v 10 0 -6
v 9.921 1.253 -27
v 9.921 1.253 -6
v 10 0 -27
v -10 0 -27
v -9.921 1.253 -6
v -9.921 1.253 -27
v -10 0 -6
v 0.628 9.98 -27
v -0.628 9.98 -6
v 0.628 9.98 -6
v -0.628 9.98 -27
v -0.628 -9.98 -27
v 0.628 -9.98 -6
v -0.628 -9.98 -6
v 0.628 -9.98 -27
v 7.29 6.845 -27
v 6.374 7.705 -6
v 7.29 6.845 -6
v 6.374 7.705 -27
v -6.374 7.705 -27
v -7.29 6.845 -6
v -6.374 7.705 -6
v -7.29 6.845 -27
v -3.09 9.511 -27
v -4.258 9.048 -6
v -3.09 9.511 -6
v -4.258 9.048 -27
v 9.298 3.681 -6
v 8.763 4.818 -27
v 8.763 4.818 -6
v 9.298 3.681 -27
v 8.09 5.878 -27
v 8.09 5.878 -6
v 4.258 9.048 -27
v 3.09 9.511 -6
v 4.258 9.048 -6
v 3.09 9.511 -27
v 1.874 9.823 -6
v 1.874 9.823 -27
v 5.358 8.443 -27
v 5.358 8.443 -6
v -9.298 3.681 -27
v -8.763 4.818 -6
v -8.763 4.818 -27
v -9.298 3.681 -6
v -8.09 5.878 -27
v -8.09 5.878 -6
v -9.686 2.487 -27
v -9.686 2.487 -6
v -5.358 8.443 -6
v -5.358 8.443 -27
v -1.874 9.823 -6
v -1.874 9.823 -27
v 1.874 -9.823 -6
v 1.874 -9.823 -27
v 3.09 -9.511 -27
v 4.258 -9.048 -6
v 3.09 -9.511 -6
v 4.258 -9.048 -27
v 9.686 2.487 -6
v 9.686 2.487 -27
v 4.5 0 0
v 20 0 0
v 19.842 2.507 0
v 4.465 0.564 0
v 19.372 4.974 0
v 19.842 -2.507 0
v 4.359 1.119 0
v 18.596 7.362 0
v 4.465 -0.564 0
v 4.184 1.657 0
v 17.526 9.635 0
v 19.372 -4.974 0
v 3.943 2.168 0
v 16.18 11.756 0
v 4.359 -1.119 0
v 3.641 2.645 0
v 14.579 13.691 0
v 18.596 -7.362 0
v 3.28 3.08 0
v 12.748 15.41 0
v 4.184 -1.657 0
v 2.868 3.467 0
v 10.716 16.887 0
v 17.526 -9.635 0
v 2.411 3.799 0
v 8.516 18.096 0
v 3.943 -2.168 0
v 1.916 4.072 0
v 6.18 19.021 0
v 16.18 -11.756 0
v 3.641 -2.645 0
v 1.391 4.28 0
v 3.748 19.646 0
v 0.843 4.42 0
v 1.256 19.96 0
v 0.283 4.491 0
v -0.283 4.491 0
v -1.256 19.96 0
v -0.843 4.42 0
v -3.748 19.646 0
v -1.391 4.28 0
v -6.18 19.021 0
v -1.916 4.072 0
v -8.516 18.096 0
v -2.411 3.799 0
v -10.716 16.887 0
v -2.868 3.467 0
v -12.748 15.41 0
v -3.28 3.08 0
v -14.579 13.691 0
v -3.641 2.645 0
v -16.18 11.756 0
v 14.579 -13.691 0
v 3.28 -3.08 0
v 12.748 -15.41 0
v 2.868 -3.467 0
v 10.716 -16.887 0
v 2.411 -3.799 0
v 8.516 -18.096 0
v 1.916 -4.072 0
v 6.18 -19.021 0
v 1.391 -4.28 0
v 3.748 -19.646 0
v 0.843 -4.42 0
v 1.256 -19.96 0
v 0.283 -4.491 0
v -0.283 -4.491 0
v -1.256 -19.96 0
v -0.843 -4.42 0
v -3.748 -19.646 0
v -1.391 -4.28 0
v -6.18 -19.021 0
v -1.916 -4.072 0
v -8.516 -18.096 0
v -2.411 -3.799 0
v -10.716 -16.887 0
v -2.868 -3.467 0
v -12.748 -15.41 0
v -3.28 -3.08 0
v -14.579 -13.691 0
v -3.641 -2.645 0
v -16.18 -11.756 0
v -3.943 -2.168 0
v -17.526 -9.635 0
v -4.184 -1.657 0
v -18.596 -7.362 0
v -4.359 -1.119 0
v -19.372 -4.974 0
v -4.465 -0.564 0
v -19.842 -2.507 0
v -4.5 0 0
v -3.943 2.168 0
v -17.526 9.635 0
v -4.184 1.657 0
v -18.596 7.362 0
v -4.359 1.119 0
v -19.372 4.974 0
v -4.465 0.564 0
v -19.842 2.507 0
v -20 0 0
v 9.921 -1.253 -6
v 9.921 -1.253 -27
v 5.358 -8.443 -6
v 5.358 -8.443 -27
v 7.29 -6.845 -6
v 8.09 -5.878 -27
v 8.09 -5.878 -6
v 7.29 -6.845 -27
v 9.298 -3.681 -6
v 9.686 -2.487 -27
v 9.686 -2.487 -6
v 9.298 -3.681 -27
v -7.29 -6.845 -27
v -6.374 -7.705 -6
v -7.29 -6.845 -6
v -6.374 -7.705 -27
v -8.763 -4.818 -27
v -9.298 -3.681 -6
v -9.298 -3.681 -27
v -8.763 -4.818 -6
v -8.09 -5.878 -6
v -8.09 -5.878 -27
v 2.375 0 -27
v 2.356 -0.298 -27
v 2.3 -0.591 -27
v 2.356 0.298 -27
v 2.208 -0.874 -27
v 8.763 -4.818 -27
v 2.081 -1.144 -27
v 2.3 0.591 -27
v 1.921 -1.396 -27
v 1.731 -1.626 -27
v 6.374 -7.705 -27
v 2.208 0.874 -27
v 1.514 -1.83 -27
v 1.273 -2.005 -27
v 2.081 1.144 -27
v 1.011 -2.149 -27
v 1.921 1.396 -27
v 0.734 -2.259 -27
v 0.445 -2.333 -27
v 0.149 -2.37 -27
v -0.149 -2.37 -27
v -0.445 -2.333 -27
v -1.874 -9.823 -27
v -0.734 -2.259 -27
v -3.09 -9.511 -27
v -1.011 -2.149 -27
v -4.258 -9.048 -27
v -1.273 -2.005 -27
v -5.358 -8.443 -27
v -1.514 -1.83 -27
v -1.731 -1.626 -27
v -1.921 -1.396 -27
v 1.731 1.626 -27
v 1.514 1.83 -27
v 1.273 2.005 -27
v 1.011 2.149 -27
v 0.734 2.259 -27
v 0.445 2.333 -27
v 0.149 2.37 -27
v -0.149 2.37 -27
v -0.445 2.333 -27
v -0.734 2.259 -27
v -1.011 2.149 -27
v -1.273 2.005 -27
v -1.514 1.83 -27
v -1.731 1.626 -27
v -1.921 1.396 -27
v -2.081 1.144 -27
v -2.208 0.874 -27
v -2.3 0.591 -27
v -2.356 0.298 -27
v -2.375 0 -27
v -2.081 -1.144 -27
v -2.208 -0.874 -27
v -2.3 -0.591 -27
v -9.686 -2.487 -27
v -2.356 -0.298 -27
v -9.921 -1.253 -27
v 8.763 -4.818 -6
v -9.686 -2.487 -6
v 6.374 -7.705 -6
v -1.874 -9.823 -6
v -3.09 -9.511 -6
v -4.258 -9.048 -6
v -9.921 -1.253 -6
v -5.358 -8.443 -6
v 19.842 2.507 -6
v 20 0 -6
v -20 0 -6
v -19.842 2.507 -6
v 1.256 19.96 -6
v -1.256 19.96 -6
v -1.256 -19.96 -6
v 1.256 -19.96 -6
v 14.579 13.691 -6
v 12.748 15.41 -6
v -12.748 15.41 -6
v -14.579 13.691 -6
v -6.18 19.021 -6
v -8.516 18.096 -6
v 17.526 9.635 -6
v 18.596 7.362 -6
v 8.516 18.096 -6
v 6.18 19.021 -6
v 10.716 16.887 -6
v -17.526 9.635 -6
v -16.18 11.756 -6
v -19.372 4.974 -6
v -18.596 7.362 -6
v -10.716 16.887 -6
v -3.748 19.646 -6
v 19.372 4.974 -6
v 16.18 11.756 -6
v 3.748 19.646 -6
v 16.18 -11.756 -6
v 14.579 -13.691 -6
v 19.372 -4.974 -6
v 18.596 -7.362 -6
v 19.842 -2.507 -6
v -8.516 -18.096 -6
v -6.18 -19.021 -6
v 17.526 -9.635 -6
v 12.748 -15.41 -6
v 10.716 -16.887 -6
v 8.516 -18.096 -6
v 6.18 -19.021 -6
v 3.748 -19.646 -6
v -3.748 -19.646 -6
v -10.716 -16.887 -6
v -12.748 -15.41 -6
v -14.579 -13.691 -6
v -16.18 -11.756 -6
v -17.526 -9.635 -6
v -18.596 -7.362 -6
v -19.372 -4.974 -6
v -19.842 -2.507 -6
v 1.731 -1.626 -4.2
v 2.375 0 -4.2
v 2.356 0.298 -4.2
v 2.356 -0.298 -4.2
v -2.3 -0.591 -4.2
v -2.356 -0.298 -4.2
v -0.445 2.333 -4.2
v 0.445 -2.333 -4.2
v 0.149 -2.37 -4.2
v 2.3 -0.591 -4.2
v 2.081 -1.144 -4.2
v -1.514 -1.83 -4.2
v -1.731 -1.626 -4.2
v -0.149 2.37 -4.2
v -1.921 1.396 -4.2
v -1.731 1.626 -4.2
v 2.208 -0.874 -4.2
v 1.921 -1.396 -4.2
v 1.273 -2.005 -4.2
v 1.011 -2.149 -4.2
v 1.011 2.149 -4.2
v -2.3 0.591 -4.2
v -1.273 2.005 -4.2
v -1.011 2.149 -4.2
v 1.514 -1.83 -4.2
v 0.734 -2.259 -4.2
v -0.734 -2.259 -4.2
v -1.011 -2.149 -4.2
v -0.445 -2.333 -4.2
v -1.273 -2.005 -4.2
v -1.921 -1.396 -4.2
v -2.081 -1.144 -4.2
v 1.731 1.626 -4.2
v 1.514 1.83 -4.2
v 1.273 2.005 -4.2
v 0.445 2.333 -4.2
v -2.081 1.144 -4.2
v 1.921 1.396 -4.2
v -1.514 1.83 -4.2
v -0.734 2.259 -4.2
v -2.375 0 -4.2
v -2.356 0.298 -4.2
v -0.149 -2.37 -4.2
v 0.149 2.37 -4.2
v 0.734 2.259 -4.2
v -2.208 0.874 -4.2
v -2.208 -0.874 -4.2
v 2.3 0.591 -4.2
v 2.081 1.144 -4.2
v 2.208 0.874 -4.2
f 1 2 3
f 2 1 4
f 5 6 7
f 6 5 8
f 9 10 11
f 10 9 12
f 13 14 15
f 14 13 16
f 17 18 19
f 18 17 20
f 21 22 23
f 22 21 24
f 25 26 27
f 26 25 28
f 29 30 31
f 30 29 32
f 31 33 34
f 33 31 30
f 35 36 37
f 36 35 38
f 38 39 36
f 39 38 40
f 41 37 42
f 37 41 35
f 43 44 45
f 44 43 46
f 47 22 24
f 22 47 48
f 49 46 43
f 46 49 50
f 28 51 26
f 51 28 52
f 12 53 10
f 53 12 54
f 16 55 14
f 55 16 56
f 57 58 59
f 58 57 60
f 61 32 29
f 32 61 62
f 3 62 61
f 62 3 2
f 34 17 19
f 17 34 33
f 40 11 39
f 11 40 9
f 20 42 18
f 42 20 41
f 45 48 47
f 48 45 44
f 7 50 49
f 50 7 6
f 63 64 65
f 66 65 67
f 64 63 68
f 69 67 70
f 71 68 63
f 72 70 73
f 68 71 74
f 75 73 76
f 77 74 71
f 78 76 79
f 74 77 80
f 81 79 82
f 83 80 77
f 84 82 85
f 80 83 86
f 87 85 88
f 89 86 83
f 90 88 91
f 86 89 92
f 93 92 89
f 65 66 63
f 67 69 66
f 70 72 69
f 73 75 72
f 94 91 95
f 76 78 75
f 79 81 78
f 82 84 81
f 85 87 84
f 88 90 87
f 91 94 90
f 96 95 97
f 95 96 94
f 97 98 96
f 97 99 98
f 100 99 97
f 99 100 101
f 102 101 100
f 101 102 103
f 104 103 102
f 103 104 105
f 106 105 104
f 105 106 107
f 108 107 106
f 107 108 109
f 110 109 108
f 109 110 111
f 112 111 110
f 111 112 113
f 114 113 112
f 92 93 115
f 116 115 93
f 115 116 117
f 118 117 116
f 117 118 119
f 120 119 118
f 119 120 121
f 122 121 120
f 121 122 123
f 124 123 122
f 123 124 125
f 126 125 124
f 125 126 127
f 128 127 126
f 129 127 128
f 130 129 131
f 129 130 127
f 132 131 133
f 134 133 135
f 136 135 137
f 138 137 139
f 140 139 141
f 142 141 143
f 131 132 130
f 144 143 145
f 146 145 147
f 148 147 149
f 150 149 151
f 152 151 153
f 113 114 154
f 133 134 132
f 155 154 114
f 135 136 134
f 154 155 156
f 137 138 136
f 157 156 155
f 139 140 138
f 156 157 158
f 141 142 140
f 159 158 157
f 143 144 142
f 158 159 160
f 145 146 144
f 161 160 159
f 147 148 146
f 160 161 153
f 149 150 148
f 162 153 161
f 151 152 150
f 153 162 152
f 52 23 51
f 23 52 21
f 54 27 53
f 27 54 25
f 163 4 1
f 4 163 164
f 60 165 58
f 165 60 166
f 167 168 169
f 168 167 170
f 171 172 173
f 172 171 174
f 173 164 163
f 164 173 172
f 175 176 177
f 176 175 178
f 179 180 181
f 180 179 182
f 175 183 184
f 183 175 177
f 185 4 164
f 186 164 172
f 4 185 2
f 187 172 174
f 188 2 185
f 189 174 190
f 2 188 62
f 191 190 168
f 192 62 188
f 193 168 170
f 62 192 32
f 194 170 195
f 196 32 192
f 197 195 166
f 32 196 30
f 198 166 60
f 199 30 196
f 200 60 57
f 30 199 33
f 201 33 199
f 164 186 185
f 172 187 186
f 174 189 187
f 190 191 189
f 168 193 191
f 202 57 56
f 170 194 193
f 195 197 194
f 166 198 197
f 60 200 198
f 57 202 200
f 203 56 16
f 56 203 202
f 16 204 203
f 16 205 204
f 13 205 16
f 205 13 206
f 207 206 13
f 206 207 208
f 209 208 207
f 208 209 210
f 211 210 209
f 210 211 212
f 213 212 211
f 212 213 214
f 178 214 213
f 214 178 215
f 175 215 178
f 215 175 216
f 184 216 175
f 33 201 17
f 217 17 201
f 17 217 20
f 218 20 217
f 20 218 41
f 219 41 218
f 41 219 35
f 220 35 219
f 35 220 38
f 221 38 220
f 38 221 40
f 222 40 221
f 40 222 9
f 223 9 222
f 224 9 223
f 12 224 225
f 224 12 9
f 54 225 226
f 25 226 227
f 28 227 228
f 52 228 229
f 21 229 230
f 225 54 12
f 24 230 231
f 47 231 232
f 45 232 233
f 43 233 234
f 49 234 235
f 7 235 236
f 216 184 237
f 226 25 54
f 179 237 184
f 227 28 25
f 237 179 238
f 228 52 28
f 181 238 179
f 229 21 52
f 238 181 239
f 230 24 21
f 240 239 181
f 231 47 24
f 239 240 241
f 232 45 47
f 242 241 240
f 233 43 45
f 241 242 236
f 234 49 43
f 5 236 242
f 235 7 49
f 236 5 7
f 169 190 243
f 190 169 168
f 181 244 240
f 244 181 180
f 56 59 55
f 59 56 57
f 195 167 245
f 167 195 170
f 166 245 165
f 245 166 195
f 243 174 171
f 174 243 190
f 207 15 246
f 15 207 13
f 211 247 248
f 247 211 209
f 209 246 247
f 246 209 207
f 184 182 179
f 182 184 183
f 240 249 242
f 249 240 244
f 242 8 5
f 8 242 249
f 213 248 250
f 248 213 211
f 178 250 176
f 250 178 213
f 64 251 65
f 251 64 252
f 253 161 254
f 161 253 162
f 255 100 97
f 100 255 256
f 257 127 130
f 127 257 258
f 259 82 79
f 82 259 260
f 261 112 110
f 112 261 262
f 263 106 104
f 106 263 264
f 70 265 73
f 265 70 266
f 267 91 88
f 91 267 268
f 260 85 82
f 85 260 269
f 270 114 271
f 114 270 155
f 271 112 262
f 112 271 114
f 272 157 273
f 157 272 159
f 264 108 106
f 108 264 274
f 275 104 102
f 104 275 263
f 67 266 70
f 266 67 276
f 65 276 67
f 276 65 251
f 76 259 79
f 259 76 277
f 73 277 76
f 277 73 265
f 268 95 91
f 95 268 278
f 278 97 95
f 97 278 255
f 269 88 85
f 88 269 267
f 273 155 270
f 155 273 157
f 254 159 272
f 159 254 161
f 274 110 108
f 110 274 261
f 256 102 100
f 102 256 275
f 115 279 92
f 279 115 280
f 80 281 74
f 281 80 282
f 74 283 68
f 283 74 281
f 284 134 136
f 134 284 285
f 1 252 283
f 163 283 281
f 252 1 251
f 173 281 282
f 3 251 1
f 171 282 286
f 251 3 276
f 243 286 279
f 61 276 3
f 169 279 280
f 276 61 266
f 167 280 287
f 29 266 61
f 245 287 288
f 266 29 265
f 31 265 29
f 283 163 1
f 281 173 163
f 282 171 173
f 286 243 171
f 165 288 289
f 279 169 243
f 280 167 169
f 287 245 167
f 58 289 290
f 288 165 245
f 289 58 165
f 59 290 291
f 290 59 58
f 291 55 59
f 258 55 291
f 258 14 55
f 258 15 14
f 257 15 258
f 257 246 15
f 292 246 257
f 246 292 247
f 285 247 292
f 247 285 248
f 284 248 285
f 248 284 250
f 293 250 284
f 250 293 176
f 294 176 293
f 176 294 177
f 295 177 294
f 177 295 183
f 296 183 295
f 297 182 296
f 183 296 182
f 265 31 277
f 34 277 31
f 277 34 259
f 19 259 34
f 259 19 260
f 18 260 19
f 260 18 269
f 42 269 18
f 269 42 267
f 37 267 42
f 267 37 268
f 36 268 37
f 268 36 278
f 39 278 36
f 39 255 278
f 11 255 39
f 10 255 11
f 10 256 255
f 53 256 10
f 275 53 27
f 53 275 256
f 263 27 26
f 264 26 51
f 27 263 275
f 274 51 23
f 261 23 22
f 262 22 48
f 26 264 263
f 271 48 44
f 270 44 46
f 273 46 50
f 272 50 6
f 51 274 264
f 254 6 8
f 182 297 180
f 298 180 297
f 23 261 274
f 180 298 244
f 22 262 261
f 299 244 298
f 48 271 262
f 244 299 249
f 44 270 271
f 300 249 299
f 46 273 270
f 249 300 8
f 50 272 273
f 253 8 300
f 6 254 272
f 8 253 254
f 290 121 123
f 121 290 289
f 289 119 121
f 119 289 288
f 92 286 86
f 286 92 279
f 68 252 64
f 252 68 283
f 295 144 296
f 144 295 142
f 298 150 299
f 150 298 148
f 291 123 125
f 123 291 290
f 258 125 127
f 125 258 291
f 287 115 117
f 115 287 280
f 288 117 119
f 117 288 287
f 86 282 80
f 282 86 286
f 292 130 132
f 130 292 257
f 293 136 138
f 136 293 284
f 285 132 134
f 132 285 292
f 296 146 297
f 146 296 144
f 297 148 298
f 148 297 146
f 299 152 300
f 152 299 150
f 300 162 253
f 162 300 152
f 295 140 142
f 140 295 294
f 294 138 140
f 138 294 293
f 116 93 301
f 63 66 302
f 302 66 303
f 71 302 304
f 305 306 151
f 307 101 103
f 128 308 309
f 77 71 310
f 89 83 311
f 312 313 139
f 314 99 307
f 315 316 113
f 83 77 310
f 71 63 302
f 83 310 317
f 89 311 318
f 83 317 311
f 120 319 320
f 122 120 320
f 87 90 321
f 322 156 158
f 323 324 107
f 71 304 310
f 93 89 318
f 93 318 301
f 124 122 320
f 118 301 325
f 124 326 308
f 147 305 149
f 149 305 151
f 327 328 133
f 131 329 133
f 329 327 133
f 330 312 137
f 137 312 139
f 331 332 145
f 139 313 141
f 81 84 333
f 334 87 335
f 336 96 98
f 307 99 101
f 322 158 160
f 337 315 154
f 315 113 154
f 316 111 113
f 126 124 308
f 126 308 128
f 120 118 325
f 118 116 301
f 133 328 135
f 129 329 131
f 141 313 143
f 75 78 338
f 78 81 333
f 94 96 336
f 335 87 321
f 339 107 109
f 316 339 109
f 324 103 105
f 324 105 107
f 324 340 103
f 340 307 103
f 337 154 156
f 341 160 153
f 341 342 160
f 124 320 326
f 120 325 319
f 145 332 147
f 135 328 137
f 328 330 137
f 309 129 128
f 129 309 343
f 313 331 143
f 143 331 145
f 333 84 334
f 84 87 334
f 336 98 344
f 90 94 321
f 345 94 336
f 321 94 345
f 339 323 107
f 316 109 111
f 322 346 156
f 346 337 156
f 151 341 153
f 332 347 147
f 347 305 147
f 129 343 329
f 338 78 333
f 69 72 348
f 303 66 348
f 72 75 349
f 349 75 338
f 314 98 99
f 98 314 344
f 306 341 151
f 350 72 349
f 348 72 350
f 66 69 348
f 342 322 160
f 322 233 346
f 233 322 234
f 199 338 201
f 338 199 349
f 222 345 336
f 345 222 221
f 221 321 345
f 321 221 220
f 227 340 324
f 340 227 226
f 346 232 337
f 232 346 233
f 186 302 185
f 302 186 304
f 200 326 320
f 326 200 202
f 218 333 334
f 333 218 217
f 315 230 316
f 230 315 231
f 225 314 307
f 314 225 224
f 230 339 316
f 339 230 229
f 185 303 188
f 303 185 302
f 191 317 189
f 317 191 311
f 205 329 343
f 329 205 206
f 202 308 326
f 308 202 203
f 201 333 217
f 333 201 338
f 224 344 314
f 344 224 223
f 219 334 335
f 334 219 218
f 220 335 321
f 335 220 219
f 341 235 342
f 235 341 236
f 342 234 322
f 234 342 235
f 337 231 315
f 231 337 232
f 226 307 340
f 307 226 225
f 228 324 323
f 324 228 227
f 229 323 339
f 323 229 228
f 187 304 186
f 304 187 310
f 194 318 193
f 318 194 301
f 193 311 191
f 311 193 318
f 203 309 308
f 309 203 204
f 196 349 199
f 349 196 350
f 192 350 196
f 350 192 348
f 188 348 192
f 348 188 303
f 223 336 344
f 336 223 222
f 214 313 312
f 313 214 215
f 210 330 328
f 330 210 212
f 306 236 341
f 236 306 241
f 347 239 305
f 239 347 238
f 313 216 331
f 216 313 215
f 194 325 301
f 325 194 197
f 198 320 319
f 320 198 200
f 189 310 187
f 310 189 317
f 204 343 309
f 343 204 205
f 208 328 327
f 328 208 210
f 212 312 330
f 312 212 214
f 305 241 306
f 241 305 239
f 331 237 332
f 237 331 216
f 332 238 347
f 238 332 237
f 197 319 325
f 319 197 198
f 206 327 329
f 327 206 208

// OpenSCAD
$fn = 50;


difference() {
	union() {
		translate(v = [0, 0, -27.0000000000]) {
			cylinder(h = 27, r = 10.0000000000);
		}
		translate(v = [0, 0, -6.0000000000]) {
			cylinder(h = 6, r = 20.0000000000);
		}
	}
	union() {
		translate(v = [0, 0, 0]) {
			rotate(a = [0, 0, 0]) {
				difference() {
					union() {
						#translate(v = [0, 0, -27.0000000000]) {
							cylinder(h = 27, r = 2.2500000000);
						}
						#translate(v = [0, 0, -4.2000000000]) {
							cylinder(h = 4.2000000000, r1 = 2.3750000000, r2 = 4.5000000000);
						}
						#translate(v = [0, 0, -27.0000000000]) {
							cylinder(h = 27, r = 2.3750000000);
						}
						#translate(v = [0, 0, -27.0000000000]) {
							cylinder(h = 27, r = 2.2500000000);
						}
					}
					union();
				}
			}
		}
	}
}
